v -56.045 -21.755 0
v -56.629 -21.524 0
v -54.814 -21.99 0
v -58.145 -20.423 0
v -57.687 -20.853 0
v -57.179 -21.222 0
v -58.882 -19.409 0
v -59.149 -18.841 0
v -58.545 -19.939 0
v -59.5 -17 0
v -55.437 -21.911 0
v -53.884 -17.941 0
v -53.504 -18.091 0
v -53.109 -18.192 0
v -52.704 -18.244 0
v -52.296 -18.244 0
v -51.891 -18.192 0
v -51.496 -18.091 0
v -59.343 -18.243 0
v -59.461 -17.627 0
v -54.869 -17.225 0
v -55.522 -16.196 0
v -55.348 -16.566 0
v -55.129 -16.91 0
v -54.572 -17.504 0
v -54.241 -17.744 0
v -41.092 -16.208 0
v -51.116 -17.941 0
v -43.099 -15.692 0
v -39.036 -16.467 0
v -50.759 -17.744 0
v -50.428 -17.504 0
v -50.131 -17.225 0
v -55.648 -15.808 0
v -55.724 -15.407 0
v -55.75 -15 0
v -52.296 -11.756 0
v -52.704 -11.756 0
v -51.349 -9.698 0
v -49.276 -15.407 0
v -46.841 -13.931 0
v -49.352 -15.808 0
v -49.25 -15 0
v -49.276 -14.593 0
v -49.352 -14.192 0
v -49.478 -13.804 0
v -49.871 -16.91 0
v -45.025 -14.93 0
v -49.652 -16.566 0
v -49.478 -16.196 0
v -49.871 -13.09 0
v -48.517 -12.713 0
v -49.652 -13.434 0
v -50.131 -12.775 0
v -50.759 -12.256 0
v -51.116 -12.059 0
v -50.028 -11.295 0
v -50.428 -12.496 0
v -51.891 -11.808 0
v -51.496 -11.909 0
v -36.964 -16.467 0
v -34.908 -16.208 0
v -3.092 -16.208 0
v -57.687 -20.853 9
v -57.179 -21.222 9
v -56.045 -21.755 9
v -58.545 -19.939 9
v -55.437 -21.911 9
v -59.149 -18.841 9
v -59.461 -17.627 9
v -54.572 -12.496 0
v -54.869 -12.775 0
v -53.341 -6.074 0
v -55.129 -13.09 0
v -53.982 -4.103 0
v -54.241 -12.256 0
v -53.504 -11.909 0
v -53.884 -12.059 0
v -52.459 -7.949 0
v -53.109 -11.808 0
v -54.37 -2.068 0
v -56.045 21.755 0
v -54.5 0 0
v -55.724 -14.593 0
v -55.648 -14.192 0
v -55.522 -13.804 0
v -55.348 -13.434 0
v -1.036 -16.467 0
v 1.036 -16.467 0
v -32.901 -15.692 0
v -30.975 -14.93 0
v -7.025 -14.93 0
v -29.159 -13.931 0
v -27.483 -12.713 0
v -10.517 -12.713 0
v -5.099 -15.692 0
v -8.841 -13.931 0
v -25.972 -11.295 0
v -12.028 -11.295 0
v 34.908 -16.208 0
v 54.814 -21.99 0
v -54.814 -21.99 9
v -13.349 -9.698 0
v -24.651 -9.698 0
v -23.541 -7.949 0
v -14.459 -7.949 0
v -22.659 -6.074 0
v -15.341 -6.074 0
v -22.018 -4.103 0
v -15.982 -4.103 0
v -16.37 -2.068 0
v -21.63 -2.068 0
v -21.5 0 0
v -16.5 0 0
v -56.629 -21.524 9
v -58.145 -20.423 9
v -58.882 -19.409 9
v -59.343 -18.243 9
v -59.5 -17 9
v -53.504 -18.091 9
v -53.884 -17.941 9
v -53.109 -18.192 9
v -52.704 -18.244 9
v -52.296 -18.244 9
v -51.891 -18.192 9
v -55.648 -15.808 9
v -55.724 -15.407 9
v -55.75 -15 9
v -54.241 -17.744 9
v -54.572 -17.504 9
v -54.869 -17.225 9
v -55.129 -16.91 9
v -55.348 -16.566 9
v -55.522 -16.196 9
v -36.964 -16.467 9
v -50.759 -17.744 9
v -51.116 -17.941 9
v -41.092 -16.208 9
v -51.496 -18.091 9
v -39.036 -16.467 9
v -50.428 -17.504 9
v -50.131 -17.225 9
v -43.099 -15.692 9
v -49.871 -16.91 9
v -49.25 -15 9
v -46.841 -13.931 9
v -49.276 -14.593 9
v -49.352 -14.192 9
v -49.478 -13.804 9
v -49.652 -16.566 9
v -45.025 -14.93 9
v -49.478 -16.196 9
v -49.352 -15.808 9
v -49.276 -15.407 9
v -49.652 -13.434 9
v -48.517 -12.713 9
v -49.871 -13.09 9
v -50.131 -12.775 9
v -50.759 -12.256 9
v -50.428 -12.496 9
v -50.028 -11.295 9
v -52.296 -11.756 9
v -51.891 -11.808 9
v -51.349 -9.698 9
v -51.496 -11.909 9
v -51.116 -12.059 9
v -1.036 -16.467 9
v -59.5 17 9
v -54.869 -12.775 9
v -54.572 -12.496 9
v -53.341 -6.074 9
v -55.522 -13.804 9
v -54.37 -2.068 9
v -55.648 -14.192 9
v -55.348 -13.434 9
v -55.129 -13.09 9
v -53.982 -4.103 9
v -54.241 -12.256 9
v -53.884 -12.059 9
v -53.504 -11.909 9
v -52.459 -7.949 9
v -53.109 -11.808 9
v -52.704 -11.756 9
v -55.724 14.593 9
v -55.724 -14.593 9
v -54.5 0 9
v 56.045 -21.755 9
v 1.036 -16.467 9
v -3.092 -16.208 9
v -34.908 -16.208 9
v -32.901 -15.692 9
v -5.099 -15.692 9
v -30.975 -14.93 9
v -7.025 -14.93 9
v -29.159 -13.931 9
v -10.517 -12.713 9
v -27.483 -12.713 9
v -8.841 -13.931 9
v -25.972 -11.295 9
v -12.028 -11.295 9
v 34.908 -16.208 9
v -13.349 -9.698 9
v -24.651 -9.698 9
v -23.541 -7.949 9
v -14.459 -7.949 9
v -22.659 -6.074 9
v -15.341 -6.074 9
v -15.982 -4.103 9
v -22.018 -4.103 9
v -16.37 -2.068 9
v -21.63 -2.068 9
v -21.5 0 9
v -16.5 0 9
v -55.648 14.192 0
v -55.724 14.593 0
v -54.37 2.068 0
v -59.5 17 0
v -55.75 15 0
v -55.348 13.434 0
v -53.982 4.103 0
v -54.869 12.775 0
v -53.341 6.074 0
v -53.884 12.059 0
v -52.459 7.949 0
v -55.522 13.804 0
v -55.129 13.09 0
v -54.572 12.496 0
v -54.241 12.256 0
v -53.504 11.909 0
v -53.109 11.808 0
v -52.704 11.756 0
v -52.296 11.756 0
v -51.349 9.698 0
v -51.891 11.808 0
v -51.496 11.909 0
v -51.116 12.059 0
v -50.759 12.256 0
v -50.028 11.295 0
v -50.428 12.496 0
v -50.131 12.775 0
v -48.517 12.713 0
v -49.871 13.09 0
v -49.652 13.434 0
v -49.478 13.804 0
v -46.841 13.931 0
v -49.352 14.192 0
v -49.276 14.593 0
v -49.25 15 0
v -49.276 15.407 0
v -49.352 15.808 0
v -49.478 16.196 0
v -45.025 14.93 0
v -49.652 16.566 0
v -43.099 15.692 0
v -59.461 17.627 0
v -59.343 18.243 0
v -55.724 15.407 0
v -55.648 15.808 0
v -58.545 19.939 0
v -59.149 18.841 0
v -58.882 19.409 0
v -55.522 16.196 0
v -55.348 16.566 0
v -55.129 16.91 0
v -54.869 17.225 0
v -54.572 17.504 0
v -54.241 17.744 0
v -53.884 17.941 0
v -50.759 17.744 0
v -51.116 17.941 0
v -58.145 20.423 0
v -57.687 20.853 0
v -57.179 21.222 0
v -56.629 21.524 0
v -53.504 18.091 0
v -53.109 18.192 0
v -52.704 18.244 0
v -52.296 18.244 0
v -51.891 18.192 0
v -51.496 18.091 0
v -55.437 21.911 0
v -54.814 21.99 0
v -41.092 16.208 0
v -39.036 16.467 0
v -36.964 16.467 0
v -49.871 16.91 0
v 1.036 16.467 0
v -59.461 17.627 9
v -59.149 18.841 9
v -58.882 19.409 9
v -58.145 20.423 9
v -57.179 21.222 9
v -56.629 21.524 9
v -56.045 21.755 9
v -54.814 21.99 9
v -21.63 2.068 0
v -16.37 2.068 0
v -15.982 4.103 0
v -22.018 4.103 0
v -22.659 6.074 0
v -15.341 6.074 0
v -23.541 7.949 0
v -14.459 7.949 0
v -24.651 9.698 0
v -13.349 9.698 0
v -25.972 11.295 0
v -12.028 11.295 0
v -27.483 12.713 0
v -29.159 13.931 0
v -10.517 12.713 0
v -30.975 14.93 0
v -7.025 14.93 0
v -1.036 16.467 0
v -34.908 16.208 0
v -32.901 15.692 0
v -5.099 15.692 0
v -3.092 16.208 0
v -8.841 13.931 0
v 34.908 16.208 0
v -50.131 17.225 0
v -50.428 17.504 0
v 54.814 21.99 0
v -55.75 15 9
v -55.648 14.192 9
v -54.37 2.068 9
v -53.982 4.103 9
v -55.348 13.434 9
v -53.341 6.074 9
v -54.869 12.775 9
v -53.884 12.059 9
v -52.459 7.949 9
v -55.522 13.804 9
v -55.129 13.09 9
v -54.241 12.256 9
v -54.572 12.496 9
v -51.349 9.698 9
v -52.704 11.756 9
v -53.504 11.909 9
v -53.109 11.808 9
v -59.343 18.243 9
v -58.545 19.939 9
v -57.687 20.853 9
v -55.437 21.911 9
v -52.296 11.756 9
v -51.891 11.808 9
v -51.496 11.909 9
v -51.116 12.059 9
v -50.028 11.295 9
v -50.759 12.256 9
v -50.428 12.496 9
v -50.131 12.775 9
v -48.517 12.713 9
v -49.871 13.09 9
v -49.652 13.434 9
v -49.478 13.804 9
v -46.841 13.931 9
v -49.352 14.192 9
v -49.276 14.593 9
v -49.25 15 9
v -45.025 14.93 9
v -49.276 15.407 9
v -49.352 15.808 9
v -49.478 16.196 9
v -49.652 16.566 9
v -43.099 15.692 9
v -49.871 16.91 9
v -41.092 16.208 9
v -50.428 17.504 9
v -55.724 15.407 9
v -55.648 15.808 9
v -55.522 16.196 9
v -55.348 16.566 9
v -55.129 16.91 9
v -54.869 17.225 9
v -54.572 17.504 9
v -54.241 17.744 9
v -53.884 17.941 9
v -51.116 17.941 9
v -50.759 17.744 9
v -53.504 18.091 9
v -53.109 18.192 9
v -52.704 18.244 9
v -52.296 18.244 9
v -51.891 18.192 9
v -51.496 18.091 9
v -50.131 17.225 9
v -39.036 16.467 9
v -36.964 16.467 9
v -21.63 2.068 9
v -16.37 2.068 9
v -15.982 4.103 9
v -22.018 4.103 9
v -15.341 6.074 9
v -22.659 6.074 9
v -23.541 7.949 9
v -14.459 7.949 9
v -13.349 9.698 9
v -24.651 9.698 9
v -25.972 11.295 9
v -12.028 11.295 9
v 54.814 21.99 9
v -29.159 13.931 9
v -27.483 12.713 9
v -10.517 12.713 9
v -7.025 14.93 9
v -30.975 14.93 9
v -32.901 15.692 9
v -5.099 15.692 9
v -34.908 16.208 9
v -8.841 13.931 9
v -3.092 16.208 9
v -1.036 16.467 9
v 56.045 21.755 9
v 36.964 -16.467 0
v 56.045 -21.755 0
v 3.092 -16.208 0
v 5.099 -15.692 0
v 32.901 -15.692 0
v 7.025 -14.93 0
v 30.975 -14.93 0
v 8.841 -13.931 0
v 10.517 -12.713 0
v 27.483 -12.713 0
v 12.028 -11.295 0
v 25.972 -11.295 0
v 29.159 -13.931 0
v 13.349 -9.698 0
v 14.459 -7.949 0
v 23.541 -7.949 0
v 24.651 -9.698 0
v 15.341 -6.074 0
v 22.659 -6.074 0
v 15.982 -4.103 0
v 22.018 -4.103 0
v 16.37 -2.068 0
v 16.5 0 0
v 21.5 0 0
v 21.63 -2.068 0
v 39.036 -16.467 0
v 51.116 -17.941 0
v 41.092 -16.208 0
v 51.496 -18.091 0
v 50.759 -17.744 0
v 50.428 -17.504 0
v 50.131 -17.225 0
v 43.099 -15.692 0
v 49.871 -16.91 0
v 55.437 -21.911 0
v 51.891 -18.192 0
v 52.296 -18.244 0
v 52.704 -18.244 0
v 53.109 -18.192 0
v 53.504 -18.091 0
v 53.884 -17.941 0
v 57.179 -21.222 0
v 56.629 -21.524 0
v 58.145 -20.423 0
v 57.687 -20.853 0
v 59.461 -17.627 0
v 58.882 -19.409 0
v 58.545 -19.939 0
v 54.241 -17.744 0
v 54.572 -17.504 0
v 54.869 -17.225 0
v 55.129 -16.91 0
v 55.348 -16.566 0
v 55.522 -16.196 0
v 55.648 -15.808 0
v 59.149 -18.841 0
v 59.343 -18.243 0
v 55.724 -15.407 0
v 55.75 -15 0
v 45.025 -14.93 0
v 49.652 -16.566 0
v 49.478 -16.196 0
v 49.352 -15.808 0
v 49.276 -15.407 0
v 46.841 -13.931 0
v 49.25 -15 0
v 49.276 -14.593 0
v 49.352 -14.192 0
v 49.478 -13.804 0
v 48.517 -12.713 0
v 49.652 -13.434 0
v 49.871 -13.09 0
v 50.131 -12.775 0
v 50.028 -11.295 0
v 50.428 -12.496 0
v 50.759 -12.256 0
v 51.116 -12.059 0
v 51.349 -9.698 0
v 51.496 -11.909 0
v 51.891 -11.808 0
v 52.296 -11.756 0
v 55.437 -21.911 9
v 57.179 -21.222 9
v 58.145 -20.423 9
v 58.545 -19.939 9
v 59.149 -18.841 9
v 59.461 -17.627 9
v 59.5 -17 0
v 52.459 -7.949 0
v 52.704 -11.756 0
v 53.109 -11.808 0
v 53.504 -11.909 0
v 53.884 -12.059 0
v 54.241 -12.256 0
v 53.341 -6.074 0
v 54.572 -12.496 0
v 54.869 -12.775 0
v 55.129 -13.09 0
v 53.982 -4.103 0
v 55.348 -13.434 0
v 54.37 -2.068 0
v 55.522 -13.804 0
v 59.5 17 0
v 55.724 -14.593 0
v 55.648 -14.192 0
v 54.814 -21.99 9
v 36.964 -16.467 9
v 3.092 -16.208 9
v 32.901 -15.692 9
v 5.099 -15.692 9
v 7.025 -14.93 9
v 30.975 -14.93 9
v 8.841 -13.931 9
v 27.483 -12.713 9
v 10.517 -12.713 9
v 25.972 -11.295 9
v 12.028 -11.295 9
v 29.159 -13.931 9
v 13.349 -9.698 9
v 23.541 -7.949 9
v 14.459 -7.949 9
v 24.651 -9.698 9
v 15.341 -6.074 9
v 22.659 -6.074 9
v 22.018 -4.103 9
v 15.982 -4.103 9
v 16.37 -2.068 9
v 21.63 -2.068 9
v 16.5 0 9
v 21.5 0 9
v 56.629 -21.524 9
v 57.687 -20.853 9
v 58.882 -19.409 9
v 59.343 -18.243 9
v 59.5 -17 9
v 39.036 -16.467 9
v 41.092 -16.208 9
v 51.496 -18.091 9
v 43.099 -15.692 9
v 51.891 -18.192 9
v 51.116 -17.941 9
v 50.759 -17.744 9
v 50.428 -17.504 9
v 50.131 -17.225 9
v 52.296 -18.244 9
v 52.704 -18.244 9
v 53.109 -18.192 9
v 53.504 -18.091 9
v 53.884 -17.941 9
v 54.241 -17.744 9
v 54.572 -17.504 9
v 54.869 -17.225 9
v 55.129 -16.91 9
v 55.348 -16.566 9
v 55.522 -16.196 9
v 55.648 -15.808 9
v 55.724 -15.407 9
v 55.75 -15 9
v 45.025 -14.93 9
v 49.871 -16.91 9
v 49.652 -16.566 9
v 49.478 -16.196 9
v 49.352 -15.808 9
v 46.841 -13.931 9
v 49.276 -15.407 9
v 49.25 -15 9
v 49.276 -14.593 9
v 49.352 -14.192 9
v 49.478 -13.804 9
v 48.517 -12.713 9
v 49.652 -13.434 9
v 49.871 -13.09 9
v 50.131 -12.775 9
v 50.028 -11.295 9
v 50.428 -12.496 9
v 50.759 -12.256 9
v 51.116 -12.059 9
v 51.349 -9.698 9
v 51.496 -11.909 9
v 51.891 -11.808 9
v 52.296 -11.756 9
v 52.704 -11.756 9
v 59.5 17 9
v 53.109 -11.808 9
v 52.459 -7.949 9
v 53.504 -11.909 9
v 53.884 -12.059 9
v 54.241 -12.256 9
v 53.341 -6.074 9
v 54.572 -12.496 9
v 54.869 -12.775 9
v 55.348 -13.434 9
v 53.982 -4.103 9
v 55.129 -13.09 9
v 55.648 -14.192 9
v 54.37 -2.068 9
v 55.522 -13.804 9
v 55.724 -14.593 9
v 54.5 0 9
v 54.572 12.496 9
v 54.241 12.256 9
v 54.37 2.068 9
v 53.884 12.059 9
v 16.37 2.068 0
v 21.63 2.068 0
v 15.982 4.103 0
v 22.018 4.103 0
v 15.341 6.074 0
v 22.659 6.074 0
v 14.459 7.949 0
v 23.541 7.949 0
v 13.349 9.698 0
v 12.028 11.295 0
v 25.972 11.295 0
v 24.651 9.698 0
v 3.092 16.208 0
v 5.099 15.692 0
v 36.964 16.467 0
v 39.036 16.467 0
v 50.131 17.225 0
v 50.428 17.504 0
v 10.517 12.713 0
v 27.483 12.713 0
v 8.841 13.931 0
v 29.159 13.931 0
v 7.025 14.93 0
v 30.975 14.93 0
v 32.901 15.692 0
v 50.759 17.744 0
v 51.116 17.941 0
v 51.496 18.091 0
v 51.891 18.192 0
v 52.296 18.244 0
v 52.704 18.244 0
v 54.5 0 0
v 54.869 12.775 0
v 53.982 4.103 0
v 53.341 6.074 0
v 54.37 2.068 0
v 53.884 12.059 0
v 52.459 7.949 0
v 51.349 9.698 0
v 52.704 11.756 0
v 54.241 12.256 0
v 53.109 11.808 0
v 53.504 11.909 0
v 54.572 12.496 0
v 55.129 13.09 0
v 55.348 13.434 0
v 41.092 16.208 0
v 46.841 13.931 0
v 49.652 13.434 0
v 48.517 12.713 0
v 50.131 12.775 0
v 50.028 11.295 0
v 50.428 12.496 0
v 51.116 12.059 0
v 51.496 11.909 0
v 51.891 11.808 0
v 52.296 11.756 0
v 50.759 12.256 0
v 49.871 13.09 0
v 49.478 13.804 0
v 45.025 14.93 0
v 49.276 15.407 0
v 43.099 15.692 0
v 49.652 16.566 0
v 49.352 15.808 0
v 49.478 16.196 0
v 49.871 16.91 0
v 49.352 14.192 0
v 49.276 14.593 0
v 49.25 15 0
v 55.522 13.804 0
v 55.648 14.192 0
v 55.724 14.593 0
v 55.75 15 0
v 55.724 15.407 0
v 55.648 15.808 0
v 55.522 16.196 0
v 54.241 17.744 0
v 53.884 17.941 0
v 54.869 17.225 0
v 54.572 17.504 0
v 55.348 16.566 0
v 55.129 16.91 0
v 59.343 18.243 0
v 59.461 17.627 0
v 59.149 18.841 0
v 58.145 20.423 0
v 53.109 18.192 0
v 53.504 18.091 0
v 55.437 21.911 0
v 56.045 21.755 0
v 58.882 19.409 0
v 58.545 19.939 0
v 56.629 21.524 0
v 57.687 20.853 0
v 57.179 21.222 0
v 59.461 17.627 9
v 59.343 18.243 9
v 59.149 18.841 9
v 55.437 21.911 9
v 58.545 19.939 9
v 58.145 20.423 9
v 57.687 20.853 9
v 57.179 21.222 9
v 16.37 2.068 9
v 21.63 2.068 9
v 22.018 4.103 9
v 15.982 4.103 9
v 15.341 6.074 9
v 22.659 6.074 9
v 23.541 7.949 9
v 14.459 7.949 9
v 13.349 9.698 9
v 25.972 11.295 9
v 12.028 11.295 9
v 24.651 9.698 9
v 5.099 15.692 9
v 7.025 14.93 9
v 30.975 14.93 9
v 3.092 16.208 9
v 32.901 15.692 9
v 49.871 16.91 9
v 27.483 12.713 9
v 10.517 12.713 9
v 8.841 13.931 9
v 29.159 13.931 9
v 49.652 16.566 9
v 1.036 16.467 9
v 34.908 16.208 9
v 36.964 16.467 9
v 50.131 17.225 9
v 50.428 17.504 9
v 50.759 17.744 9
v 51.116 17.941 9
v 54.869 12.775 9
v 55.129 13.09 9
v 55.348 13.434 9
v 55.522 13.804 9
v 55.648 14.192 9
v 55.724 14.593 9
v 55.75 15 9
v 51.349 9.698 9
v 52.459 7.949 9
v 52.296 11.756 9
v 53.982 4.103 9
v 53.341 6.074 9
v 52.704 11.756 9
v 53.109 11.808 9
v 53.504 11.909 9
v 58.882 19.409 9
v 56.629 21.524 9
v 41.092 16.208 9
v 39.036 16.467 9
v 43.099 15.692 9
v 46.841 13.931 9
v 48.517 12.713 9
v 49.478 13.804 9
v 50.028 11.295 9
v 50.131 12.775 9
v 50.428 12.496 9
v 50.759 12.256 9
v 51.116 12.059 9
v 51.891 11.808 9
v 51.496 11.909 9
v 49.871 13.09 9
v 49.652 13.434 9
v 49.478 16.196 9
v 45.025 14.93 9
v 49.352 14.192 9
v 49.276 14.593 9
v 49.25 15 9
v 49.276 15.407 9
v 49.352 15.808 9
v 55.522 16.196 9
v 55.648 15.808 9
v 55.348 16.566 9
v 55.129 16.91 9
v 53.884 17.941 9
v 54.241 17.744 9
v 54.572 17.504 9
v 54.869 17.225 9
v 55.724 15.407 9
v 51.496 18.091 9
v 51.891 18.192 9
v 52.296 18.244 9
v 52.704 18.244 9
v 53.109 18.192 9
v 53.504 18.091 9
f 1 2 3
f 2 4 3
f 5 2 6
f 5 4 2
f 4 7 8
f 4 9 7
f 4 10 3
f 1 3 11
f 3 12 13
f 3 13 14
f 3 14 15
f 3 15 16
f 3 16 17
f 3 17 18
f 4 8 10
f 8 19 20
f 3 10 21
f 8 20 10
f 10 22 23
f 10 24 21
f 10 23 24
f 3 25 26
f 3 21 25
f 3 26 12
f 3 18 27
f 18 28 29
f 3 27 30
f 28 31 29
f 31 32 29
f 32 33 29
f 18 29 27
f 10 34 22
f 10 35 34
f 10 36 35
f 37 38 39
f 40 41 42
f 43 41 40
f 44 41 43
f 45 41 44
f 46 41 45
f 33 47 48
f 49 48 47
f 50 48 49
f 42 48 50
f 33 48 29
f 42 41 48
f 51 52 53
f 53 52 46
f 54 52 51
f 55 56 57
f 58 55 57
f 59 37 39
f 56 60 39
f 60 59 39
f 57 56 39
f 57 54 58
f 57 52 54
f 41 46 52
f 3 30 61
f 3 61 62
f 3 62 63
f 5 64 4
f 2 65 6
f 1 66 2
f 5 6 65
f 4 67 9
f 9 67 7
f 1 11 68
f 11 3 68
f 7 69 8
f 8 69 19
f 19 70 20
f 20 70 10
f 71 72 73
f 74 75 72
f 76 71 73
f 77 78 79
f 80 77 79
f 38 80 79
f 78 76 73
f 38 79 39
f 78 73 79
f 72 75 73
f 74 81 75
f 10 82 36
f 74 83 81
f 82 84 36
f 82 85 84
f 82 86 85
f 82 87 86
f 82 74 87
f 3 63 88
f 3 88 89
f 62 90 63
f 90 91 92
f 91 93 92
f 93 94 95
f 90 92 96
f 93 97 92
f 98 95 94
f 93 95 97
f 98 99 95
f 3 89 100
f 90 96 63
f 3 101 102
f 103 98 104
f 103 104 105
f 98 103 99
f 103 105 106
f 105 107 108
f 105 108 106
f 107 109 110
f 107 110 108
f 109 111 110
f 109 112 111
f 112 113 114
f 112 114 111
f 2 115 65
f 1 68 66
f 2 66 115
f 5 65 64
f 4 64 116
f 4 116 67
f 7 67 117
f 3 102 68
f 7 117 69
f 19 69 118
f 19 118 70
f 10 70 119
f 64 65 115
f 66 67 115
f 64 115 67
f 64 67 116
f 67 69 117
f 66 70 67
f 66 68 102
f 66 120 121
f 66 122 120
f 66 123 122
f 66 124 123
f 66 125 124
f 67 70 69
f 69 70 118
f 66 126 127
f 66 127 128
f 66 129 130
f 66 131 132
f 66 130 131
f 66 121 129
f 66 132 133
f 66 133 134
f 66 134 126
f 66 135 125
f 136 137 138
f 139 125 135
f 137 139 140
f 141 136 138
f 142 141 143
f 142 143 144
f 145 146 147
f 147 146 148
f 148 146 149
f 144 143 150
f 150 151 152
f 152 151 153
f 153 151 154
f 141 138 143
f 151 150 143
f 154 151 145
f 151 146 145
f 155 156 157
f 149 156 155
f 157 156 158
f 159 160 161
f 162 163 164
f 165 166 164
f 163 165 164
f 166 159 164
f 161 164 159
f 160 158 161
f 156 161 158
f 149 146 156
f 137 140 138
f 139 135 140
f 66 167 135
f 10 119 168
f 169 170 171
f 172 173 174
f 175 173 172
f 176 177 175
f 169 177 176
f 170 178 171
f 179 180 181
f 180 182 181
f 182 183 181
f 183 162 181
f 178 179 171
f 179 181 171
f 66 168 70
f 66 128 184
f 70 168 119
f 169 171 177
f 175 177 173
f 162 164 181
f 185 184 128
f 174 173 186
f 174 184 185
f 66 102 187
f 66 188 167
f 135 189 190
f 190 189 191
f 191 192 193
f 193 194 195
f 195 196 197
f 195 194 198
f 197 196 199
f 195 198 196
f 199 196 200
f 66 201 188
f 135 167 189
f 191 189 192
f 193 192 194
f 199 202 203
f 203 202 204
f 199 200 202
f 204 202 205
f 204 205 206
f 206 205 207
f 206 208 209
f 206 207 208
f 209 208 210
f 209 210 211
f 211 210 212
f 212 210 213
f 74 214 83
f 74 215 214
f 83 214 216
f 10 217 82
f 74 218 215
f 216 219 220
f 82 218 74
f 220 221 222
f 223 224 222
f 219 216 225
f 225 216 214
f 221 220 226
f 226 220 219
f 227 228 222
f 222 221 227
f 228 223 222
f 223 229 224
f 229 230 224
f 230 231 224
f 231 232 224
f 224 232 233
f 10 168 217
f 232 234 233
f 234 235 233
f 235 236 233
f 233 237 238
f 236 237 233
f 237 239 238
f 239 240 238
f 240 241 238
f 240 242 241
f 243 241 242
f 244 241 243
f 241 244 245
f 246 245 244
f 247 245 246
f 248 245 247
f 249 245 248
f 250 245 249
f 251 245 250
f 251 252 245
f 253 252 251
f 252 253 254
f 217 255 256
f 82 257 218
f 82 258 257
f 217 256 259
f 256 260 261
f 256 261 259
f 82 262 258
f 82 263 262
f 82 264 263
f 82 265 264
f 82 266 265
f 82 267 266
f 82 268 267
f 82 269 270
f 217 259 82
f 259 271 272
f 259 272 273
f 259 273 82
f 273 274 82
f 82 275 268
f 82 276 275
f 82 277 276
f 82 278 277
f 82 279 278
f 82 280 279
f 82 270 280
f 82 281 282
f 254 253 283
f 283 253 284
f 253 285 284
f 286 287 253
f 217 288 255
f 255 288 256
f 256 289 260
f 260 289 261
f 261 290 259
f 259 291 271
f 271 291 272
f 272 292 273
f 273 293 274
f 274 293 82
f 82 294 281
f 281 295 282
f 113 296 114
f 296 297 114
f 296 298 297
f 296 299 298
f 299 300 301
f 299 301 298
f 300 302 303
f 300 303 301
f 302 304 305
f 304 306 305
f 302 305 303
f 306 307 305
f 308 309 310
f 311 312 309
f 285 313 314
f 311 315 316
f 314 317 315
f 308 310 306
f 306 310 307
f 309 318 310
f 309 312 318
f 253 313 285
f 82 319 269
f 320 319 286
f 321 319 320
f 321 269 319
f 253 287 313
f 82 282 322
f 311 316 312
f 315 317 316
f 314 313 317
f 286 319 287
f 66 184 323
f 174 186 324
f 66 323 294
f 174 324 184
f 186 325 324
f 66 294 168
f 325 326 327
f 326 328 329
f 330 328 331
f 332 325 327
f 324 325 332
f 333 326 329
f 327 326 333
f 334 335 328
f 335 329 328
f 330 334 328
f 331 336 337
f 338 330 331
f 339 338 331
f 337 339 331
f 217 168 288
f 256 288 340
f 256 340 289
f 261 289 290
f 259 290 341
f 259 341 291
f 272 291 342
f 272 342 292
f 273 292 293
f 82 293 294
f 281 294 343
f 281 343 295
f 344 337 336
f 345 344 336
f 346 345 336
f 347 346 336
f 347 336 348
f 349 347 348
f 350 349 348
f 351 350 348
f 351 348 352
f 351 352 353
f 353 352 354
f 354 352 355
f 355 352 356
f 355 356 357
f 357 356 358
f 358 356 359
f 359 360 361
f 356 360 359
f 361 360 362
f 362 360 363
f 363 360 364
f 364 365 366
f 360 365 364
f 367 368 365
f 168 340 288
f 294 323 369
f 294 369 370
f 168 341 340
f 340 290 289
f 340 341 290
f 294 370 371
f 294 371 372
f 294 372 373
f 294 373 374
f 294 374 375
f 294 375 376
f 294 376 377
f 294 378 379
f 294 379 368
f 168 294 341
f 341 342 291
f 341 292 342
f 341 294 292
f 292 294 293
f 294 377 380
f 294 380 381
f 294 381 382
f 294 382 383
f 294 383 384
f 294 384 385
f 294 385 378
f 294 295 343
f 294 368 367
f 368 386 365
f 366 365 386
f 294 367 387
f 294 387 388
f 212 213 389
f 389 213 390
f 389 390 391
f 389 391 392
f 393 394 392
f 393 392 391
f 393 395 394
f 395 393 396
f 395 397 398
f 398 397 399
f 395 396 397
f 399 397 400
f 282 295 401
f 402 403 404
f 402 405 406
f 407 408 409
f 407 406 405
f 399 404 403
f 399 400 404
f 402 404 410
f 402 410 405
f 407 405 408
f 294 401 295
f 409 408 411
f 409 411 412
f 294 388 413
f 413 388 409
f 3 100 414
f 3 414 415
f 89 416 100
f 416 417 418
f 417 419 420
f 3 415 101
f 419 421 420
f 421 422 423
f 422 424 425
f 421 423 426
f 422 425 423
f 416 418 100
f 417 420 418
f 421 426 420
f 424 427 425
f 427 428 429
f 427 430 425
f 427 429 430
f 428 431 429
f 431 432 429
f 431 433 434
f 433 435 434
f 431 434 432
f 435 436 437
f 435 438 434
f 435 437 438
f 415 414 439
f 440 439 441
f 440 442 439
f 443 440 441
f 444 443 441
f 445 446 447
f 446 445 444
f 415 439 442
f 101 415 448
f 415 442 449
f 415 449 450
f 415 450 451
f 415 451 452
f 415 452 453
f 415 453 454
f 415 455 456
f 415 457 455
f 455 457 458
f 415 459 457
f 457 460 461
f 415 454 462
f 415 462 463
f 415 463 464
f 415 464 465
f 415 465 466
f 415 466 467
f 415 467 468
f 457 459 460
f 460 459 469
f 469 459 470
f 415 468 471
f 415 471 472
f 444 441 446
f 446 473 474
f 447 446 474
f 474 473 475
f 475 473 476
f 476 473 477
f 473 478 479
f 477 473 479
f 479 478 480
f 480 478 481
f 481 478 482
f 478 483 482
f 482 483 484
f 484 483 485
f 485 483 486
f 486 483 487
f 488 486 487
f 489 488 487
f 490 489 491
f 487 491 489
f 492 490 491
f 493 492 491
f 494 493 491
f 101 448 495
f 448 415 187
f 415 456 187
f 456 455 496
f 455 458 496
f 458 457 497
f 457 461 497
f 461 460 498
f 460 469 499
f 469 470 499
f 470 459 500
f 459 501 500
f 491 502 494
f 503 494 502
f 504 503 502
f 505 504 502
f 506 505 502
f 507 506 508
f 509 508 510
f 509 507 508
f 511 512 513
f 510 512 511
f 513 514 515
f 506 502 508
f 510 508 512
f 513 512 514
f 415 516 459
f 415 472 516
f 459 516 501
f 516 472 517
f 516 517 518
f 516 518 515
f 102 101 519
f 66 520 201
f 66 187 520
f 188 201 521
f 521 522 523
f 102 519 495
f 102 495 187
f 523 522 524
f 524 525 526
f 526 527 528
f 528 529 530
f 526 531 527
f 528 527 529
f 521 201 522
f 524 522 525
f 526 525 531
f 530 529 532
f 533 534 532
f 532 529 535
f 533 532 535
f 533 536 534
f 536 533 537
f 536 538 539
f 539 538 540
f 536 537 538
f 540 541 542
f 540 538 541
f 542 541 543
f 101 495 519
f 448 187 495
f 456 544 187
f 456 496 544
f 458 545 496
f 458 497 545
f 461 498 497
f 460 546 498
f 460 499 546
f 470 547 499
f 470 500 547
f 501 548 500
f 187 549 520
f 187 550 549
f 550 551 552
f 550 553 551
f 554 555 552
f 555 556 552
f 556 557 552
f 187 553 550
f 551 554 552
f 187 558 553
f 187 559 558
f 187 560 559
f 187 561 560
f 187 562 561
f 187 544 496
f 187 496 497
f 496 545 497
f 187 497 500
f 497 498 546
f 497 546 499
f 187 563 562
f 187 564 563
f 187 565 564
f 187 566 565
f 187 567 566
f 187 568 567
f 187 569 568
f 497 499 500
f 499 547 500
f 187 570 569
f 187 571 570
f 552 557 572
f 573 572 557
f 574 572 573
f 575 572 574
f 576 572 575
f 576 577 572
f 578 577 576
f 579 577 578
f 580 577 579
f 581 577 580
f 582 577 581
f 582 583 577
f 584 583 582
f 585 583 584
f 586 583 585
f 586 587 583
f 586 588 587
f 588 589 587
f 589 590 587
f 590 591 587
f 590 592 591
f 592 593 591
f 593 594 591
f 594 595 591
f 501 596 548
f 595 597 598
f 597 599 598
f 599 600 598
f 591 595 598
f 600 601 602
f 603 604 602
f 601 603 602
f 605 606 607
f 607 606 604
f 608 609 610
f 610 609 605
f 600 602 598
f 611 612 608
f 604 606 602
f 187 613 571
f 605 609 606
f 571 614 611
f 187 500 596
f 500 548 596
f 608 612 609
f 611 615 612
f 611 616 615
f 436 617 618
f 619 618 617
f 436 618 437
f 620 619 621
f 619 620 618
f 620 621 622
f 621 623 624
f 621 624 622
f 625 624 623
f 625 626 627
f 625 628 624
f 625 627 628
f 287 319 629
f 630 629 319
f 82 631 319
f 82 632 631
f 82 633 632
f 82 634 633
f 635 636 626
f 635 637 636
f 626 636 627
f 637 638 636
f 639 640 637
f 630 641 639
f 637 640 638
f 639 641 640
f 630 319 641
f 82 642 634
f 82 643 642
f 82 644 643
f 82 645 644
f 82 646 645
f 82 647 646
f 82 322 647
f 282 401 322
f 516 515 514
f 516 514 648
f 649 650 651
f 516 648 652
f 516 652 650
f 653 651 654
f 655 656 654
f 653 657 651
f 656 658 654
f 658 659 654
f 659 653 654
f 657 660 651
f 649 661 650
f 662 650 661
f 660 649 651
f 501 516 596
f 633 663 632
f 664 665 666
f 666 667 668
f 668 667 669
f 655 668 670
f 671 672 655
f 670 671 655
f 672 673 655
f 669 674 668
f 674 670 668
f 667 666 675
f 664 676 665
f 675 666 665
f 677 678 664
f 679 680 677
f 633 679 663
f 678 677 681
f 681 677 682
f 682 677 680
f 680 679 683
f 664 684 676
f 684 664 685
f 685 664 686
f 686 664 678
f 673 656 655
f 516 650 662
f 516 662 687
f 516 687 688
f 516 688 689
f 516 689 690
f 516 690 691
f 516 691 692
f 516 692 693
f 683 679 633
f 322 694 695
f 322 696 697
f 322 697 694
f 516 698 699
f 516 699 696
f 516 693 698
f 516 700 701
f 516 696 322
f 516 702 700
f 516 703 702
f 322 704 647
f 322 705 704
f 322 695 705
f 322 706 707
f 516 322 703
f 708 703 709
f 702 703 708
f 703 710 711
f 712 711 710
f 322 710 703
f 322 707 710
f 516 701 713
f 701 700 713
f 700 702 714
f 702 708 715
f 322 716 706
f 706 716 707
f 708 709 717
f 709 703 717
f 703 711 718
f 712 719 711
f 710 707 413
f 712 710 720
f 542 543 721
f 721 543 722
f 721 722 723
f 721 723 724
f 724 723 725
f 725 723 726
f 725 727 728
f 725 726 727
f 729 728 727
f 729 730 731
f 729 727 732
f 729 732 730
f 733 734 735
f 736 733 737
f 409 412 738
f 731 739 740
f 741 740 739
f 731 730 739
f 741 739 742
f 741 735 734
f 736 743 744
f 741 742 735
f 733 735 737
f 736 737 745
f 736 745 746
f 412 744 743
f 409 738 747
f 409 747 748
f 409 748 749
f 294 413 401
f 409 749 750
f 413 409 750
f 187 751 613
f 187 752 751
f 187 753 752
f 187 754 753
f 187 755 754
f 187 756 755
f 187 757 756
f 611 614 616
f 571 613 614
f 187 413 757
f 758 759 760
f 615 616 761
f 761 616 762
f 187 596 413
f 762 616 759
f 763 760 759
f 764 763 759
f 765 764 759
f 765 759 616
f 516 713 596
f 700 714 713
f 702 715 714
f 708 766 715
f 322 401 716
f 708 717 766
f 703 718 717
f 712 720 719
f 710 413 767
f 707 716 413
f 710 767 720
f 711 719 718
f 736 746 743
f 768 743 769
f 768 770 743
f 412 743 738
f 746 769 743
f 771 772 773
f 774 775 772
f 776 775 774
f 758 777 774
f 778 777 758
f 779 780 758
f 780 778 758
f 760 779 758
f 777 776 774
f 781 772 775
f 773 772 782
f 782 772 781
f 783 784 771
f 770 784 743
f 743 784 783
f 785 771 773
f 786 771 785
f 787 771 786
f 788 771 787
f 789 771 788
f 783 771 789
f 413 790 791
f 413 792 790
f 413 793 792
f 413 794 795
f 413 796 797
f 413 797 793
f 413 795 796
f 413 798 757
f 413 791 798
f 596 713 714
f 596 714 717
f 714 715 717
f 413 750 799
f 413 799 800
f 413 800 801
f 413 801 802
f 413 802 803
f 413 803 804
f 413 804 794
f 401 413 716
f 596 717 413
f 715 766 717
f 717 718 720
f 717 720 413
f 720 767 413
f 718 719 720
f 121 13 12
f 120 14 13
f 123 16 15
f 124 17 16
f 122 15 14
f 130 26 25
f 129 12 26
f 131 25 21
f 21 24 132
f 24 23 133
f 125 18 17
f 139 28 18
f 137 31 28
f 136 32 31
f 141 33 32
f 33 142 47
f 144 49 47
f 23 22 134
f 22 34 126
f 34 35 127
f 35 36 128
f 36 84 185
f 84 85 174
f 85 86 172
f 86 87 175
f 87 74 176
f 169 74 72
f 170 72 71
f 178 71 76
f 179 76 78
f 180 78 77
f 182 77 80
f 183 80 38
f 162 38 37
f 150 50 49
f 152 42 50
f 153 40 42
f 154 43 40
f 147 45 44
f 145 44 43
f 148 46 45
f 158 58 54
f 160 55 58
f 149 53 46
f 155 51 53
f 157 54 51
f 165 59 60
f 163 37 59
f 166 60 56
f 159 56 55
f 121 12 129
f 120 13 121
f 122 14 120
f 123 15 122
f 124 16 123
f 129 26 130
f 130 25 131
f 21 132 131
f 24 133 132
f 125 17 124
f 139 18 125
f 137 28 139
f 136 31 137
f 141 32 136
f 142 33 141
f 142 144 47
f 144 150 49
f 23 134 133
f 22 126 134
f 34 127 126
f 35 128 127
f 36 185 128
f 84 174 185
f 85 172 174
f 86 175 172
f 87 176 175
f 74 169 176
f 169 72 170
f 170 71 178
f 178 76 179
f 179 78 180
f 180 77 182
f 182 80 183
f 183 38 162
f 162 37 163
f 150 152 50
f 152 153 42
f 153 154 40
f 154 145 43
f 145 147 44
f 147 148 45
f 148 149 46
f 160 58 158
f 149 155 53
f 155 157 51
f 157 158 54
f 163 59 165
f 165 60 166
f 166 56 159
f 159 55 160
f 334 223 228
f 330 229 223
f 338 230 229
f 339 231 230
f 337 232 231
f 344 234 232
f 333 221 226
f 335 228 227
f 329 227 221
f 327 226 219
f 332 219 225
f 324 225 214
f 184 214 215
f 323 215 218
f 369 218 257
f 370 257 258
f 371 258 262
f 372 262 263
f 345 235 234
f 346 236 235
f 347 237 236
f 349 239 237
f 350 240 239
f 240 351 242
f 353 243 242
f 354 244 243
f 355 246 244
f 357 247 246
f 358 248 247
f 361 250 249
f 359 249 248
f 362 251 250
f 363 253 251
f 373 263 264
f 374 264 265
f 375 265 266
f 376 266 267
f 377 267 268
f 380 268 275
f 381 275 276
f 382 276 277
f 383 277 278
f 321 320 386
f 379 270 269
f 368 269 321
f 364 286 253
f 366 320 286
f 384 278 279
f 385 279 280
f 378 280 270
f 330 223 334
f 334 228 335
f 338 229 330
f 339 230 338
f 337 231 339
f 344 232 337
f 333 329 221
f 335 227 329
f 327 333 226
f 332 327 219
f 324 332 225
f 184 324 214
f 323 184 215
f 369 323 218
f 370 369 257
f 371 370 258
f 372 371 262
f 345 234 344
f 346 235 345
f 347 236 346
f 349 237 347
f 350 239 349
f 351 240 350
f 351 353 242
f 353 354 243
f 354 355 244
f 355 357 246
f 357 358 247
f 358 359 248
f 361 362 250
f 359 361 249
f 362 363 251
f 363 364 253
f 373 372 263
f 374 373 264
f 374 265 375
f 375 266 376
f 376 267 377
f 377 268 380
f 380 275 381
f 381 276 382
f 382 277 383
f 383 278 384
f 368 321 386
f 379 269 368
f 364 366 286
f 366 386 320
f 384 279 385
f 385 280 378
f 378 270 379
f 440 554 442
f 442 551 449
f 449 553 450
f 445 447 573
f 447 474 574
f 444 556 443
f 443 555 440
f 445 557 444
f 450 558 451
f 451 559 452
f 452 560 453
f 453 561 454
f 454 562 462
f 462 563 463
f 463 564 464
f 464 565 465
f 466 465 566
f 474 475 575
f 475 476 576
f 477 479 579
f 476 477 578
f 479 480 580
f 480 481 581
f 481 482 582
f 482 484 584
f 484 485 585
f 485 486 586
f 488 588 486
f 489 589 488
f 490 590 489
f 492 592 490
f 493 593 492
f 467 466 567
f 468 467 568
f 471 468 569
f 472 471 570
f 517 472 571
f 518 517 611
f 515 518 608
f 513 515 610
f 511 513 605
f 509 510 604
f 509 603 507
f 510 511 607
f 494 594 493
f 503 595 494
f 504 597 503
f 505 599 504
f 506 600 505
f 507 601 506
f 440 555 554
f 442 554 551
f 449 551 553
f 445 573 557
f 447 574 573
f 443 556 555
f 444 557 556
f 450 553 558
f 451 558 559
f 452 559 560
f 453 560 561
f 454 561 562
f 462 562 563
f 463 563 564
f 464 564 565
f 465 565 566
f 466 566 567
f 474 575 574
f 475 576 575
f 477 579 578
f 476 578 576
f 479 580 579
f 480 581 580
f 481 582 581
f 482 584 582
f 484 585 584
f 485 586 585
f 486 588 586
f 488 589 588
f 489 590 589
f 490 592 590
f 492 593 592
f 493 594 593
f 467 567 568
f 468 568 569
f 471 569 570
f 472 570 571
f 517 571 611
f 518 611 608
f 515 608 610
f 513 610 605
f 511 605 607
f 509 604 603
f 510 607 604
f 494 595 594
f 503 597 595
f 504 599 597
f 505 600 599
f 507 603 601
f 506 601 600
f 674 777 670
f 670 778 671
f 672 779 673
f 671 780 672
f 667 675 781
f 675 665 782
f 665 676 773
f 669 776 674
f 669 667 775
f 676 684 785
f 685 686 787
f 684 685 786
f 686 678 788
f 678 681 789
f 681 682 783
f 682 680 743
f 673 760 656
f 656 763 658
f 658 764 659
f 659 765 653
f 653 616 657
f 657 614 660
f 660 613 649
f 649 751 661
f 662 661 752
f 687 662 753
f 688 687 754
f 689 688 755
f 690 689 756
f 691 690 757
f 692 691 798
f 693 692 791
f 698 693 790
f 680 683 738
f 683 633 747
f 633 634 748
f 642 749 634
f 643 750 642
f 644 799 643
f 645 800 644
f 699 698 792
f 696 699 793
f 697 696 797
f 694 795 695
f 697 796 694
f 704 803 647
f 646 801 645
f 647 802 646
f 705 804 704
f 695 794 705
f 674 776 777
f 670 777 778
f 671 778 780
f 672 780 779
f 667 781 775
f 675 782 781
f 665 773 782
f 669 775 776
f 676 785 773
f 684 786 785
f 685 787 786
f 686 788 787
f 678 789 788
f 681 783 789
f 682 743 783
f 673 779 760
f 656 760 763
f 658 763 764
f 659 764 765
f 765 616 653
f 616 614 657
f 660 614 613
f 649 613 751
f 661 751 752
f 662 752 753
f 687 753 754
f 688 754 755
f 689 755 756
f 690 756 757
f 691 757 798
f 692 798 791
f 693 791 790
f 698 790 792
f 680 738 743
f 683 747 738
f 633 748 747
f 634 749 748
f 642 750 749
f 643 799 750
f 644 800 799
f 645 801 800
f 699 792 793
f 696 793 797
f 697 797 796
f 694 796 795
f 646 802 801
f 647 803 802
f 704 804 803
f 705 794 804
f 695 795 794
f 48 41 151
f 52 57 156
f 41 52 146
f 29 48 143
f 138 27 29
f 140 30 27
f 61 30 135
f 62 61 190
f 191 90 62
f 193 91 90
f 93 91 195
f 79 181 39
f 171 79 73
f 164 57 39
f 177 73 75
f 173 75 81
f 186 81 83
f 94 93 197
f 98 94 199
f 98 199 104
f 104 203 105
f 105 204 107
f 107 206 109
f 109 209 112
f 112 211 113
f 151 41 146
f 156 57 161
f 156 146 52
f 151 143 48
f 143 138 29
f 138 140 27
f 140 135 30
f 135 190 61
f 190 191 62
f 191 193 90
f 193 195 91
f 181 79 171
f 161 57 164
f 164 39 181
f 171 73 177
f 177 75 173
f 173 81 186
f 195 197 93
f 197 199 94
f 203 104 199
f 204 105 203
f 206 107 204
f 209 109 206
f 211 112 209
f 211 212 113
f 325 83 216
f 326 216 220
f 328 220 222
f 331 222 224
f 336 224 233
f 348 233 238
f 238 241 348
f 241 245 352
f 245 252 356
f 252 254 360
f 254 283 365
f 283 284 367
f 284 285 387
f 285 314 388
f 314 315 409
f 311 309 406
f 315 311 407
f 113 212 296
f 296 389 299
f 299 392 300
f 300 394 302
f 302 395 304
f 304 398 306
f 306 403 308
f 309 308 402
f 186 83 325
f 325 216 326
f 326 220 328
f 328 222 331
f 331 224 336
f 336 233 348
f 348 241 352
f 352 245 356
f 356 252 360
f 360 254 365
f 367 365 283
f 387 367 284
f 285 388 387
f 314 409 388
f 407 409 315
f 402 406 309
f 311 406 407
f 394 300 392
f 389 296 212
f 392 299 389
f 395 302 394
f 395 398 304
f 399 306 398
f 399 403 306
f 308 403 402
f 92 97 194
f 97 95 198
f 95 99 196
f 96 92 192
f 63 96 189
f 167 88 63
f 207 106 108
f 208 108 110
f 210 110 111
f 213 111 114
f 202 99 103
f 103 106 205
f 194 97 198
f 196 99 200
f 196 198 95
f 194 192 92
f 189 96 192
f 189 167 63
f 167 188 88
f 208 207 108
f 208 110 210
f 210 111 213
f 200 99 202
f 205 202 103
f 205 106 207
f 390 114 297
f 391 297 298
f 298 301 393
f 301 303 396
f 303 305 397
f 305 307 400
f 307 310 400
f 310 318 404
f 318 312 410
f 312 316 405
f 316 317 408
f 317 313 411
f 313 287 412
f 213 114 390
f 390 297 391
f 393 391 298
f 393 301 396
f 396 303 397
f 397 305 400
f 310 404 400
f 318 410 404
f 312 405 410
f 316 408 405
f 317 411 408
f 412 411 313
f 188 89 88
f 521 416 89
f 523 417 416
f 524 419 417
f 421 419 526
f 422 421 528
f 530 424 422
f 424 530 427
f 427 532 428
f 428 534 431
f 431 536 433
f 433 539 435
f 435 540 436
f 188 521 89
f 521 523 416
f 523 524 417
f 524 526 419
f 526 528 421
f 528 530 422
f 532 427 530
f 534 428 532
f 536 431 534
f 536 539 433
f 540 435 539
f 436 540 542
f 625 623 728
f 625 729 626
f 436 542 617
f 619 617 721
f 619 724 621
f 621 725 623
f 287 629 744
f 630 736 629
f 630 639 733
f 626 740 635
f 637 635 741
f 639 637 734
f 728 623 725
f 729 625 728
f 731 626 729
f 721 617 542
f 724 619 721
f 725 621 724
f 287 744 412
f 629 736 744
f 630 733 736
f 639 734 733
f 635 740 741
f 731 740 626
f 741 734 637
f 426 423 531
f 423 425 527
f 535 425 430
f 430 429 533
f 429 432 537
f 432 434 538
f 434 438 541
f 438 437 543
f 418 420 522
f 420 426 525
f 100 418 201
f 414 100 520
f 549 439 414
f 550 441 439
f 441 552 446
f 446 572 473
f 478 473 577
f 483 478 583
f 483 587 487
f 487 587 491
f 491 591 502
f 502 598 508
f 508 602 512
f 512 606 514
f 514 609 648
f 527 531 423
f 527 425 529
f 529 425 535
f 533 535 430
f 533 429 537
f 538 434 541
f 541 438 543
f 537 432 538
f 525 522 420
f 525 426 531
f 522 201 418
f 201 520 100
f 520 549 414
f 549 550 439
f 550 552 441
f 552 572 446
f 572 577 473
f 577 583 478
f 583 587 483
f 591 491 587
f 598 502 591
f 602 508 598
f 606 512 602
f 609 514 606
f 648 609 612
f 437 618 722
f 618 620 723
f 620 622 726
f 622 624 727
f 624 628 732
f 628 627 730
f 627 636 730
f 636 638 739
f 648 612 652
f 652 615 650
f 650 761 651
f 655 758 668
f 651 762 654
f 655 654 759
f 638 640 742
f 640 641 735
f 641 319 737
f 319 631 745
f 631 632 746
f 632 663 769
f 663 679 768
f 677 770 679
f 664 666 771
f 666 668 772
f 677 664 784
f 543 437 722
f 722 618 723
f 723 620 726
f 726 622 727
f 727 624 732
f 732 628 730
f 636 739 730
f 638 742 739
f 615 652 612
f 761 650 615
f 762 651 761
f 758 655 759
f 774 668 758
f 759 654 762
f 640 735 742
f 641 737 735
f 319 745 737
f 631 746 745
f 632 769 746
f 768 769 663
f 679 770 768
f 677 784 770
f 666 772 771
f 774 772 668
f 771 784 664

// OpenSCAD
$fn = 50;

difference() {
	union() {
		hull() {
			translate(v = [-54.5, 17.0, 0]) {
				cylinder(h = 9, r = 5);
			}
			translate(v = [54.5, 17.0, 0]) {
				cylinder(h = 9, r = 5);
			}
			translate(v = [-54.5, -17.0, 0]) {
				cylinder(h = 9, r = 5);
			}
			translate(v = [54.5, -17.0, 0]) {
				cylinder(h = 9, r = 5);
			}
		}
	}
	union() {
		translate(v = [-52.5, -15.0, -100.0]) {
			cylinder(h = 200, r = 3.25);
		}
		translate(v = [-52.5, 15.0, -100.0]) {
			cylinder(h = 200, r = 3.25);
		}
		translate(v = [52.5, -15.0, -100.0]) {
			cylinder(h = 200, r = 3.25);
		}
		translate(v = [52.5, 15.0, -100.0]) {
			cylinder(h = 200, r = 3.25);
		}
		translate(v = [-52.5, -15.0, -100.0]) {
			cylinder(h = 200, r = 1.8);
		}
		translate(v = [-52.5, 15.0, -100.0]) {
			cylinder(h = 200, r = 1.8);
		}
		translate(v = [52.5, -15.0, -100.0]) {
			cylinder(h = 200, r = 1.8);
		}
		translate(v = [52.5, 15.0, -100.0]) {
			cylinder(h = 200, r = 1.8);
		}
		translate(v = [-38.0, 0, 0.0]) {
			cylinder(h = 9, r = 16.5);
		}
		cylinder(h = 9, r = 16.5);
		translate(v = [38.0, 0, 0.0]) {
			cylinder(h = 9, r = 16.5);
		}
	}
}
